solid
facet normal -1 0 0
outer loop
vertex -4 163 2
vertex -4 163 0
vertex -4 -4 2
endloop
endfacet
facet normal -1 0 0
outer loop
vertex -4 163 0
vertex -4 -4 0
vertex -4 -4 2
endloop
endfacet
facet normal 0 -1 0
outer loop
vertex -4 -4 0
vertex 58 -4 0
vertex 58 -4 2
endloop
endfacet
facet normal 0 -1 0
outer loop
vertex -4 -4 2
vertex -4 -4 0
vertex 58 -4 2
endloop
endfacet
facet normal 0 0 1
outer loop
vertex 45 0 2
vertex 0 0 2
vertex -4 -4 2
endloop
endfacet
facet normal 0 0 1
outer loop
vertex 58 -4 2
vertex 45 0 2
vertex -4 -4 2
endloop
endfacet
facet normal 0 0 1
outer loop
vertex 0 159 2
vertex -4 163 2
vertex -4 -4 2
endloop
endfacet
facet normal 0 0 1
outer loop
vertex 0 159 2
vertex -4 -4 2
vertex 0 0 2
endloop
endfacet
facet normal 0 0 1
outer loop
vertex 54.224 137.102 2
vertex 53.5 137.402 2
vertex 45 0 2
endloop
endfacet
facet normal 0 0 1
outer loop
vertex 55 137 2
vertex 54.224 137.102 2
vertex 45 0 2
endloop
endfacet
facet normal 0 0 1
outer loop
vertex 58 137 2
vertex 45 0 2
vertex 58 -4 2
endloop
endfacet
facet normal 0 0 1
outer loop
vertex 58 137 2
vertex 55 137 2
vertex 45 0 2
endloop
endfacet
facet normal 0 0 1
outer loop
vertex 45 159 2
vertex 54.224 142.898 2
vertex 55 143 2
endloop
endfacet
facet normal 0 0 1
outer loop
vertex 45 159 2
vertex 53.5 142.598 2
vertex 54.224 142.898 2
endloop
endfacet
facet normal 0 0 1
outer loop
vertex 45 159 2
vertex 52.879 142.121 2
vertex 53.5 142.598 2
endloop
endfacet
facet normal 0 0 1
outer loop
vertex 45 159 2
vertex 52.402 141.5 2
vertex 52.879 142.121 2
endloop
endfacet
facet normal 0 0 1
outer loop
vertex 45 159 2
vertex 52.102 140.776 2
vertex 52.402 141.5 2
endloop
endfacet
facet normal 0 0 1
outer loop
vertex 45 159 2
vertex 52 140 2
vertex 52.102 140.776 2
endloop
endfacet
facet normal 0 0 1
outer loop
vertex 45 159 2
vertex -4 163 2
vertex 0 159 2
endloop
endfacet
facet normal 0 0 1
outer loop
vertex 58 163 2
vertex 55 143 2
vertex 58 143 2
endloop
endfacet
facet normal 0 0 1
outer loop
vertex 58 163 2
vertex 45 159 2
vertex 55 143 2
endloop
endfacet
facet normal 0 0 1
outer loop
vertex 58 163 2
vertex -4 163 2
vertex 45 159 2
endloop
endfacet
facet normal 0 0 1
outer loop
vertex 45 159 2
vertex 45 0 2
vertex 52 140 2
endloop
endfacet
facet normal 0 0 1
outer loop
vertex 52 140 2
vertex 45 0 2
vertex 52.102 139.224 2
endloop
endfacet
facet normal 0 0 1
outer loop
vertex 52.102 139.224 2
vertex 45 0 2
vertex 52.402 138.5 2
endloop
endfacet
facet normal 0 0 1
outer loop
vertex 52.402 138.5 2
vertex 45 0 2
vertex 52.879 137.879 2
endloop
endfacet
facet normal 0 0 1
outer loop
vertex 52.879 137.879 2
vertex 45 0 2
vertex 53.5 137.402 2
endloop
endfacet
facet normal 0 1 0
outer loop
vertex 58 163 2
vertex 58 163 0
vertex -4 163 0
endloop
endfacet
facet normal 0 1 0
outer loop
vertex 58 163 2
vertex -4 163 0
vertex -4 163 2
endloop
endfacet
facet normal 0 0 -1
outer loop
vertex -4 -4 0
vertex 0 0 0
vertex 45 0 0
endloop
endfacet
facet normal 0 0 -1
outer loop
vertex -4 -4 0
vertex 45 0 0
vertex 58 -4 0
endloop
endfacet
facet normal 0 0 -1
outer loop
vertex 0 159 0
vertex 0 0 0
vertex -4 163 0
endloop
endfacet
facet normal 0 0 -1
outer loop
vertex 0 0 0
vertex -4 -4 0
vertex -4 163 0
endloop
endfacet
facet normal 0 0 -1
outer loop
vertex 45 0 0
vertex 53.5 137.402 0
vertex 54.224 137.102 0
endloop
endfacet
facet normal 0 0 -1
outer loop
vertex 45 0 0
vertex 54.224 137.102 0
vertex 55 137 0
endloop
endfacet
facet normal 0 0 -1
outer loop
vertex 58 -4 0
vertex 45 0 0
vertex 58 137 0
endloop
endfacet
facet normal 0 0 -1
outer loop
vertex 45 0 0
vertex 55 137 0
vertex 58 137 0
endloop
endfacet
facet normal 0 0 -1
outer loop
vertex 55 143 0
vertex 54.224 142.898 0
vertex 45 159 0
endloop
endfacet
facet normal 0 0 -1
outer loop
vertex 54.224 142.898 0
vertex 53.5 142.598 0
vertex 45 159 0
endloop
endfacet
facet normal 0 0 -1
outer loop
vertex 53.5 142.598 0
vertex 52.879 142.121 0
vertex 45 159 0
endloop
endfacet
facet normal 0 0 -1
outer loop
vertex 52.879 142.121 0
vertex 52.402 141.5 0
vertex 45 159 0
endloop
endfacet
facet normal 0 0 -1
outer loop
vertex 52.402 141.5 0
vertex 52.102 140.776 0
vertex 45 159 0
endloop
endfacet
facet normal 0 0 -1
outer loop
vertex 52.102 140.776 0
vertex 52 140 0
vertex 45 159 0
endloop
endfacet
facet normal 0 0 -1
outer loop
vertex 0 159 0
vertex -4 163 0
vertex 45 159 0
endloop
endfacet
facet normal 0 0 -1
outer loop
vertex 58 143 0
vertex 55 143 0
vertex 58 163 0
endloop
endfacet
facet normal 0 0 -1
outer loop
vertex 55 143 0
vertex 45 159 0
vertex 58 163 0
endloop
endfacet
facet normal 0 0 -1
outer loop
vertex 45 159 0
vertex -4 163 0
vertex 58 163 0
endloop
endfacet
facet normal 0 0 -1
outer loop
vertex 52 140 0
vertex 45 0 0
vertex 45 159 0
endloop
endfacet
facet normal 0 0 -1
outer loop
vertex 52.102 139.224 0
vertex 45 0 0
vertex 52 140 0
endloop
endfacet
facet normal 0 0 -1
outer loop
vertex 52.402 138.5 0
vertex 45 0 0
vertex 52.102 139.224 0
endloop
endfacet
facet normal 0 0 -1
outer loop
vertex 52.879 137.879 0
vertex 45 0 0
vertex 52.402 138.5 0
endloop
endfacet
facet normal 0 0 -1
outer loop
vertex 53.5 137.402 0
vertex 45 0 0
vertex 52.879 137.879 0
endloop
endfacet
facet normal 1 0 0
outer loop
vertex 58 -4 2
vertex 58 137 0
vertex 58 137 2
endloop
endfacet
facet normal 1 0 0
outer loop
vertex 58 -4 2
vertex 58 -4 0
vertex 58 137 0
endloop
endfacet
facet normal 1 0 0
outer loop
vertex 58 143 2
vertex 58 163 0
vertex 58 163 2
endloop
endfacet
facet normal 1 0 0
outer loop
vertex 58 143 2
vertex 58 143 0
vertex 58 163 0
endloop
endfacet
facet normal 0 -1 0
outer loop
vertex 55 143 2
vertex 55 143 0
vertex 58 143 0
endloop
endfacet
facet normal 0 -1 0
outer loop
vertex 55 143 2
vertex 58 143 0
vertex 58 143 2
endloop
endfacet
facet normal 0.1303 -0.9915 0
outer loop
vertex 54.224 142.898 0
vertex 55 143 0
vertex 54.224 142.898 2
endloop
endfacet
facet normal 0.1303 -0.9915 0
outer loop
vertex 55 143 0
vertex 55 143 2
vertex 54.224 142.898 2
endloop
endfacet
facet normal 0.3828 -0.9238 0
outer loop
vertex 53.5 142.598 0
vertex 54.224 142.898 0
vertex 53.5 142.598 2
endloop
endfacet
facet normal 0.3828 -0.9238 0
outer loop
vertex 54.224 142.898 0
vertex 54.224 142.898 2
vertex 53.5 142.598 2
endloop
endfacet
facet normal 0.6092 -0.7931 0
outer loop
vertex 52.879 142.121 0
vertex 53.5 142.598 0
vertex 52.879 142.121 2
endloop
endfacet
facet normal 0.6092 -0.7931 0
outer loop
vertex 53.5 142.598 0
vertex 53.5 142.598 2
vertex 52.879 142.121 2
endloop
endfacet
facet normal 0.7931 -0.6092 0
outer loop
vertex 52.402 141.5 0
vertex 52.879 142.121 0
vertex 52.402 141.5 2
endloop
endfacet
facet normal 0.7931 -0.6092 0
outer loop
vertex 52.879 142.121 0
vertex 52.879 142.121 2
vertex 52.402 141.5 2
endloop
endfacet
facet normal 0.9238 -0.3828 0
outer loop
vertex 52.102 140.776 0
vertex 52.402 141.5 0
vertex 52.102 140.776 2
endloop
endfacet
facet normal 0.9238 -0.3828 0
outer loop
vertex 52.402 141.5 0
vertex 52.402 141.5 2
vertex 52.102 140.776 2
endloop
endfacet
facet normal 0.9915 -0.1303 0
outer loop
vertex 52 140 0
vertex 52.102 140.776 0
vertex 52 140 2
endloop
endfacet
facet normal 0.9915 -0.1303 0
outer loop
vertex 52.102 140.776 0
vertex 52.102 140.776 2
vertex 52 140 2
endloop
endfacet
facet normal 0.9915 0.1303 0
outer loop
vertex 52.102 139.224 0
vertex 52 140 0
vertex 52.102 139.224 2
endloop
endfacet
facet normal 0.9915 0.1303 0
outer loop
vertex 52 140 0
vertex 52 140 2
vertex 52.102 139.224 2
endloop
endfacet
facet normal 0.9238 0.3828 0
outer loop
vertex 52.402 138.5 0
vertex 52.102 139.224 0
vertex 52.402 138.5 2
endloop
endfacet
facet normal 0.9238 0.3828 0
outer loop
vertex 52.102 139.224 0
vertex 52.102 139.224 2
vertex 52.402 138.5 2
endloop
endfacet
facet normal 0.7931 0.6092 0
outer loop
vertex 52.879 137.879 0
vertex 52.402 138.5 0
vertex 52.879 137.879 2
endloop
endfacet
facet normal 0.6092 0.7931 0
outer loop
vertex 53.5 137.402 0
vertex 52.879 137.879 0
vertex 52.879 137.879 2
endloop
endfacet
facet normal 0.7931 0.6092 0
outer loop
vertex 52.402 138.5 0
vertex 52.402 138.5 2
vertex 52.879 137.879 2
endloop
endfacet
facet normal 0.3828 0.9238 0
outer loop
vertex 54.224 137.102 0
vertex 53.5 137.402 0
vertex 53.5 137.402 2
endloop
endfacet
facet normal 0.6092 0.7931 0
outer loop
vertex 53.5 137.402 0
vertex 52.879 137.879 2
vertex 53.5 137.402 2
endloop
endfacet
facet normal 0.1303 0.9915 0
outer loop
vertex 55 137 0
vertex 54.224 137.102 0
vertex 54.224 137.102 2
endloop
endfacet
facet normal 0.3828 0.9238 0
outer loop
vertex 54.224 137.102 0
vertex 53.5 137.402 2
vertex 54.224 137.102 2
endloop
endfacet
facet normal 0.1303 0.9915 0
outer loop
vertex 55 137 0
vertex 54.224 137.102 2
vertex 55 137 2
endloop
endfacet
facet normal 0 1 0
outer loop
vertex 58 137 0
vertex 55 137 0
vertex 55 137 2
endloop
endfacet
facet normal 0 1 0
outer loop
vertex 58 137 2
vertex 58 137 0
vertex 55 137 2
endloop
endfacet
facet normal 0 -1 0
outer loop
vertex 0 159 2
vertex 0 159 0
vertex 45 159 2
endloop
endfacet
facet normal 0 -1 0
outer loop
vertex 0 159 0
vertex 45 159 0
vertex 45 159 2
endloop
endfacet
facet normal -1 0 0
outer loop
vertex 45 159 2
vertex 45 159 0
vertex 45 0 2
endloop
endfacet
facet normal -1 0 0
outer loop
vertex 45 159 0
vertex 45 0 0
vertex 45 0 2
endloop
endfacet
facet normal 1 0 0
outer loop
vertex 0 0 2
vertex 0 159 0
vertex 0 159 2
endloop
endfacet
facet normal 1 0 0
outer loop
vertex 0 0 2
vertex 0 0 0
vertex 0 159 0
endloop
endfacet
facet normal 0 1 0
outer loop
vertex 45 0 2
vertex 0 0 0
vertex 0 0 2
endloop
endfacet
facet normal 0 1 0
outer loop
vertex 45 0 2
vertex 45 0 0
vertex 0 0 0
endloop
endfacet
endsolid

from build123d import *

# Parameters (mm, degrees)
BOX002_W       = 6
BOX002_H       = 6
BOX002_DEPTH   = 10
BOX_W          = 45
BOX_H          = 159
BOX_DEPTH      = 3
CYLINDER_R     = 3
CYLINDER_DEPTH = 10
BOX001_W       = 62
BOX001_H       = 167
BOX001_DEPTH   = 2


with BuildPart() as cube002:
    # Box002 → Box002 (new body)
    with BuildSketch(Plane(origin=(55, 137, 0), x_dir=(1, 0, 0), z_dir=(0, 0, 1))):
        with Locations((3, 3)):
            Rectangle(BOX002_W, BOX002_H)
    extrude(amount=BOX002_DEPTH)


with BuildPart() as cube:
    # Box → Box (new body)
    with BuildSketch(Plane.XY):
        with Locations((22.5, 79.5)):
            Rectangle(BOX_W, BOX_H)
    extrude(amount=BOX_DEPTH)


with BuildPart() as fusion:
    # Cylinder → Cylinder (new body)
    with BuildSketch(Plane(origin=(55, 140, 0), x_dir=(1, 0, 0), z_dir=(0, 0, 1))):
        Circle(CYLINDER_R)
    extrude(amount=CYLINDER_DEPTH)

    # Fusion: union Cube
    add(cube.part)


with BuildPart() as cut001:
    # Box001 → Box001 (new body)
    with BuildSketch(Plane(origin=(-4, -4, 0), x_dir=(1, 0, 0), z_dir=(0, 0, 1))):
        with Locations((31, 83.5)):
            Rectangle(BOX001_W, BOX001_H)
    extrude(amount=BOX001_DEPTH)

    # Cut: cut Fusion
    add(fusion.part, mode=Mode.SUBTRACT)

    # Cut001: cut Cube002
    add(cube002.part, mode=Mode.SUBTRACT)


solid = cut001.part
